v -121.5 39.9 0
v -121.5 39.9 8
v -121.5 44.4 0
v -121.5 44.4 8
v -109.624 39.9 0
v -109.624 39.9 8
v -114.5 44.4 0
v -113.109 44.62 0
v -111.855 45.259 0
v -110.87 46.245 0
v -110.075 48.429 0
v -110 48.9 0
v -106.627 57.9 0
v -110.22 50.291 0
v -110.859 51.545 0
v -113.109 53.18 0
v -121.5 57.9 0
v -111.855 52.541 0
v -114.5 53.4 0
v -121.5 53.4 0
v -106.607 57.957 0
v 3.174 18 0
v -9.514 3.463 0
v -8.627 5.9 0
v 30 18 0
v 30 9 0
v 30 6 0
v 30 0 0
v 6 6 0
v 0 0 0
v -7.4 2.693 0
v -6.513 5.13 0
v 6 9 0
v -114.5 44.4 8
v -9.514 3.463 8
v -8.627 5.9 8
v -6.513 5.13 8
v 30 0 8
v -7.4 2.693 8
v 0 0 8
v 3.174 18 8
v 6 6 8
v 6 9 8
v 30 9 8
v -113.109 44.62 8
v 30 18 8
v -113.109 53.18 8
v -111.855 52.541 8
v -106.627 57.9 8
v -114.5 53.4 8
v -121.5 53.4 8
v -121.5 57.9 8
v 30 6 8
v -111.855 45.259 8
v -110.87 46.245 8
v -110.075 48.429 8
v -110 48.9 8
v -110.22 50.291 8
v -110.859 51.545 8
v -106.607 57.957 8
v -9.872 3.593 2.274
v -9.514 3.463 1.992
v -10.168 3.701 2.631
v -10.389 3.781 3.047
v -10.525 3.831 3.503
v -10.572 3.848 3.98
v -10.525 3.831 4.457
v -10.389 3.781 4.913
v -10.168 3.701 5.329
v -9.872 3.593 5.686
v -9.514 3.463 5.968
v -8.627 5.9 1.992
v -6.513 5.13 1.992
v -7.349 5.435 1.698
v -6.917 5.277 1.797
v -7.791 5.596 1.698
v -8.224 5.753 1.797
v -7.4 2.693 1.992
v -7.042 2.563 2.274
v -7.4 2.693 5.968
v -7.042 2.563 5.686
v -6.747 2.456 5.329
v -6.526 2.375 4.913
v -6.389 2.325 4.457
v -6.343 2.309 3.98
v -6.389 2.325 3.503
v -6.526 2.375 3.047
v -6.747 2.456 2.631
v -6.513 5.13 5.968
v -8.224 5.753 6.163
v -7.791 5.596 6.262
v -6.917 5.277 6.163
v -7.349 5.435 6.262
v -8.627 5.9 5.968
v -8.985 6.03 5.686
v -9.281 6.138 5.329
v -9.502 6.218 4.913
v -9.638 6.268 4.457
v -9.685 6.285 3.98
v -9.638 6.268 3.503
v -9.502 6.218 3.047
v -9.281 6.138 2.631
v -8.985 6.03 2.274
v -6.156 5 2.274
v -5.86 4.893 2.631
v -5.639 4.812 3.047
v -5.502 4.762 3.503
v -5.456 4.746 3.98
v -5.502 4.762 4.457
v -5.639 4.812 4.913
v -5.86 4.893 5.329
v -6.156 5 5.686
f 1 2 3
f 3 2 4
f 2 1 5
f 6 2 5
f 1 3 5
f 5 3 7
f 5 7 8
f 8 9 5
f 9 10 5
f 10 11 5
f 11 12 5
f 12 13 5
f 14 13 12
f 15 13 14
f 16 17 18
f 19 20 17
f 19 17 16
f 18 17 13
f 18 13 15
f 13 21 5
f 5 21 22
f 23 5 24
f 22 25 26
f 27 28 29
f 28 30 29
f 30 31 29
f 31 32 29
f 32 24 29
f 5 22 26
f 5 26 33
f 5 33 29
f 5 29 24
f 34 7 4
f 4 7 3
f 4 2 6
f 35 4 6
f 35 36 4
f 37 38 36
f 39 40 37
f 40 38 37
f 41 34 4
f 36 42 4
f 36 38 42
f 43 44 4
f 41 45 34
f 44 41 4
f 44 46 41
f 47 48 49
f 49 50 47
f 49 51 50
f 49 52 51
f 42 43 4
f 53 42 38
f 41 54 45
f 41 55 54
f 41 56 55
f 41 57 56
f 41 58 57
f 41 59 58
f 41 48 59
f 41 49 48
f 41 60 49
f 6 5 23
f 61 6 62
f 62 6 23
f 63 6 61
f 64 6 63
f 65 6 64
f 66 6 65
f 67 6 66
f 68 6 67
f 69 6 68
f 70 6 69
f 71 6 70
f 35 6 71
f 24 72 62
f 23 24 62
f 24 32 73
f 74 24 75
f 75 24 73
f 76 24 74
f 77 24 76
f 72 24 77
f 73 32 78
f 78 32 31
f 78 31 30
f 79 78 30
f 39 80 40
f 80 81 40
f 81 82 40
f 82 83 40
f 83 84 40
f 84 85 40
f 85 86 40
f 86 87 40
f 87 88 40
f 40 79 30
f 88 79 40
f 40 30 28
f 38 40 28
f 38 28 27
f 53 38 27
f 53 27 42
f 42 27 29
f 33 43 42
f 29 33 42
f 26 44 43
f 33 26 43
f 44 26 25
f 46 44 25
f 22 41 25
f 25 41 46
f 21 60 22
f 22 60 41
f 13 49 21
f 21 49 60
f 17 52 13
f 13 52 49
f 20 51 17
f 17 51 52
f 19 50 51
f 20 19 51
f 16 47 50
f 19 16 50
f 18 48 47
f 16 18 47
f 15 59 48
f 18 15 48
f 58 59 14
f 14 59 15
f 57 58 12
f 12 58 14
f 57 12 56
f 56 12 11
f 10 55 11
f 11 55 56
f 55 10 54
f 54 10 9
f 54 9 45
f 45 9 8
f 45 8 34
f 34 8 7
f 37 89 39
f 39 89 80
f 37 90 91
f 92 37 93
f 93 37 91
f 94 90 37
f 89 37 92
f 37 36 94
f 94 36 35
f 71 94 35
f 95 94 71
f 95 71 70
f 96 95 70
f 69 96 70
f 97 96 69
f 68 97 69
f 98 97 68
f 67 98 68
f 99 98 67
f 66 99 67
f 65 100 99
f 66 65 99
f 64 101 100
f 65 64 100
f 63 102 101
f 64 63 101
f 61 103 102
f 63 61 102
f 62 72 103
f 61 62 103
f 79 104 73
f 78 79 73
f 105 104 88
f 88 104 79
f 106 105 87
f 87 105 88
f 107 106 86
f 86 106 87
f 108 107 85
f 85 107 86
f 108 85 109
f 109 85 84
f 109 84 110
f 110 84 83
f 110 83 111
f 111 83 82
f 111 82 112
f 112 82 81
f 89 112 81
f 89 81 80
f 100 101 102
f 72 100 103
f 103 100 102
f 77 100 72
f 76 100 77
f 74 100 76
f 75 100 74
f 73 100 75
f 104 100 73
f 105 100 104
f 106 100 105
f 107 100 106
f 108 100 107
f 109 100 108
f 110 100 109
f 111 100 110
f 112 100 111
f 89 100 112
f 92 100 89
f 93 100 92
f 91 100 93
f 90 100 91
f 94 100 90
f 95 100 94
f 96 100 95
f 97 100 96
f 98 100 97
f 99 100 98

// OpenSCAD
// file: Spool_mount_for_P3S_config.scad
//
//
//Variables

width=8;
length_frame_mount=30;
length_strip=120;
length_axis_support=15;
height=18;

//Liston de enlace
height_clamp=width/3;

//enganche
module anchor(){
	translate([height/2,0,width/2]) rotate([90,0,0]) 
	union(){
		cylinder(r=height/8, h=height_clamp, $fn=30);
		translate([0,0,height_clamp/2])
			cube([height/8,width,height_clamp],center=true);
	}
}
// main file
include<Spool_mount_for_P3S_config.scad>

//sujeccion al marco
module frame_mount(){
	difference()
	{
		cube([length_frame_mount,height,width]);
		translate([6,6,0]) 
			cube([length_frame_mount-3,3,width]);
	}
}

//liston para el soporte
module strip_support(){
		rotate([0,0,160])
			difference(){
				translate([0,-height,0]) 
					cube([length_strip,height,width]);
				translate([0,0.1,-0.1])
					scale([1,1.01,1.02]) anchor();
			}
}

//enganche para el rollo
module axis_support(){
	translate([-121.5,39.9,0]) difference() {
		cube([length_axis_support,height,width]);
		union(){
			translate([0,4.5,0])
				cube([length_axis_support-8	,height/2,width]);
			translate([length_axis_support-8,height/2,0])
				cylinder(r=4.5, h=width, $fn=20);
		}
	}
}

union(){
	frame_mount();
	strip_support();
	axis_support();
}
